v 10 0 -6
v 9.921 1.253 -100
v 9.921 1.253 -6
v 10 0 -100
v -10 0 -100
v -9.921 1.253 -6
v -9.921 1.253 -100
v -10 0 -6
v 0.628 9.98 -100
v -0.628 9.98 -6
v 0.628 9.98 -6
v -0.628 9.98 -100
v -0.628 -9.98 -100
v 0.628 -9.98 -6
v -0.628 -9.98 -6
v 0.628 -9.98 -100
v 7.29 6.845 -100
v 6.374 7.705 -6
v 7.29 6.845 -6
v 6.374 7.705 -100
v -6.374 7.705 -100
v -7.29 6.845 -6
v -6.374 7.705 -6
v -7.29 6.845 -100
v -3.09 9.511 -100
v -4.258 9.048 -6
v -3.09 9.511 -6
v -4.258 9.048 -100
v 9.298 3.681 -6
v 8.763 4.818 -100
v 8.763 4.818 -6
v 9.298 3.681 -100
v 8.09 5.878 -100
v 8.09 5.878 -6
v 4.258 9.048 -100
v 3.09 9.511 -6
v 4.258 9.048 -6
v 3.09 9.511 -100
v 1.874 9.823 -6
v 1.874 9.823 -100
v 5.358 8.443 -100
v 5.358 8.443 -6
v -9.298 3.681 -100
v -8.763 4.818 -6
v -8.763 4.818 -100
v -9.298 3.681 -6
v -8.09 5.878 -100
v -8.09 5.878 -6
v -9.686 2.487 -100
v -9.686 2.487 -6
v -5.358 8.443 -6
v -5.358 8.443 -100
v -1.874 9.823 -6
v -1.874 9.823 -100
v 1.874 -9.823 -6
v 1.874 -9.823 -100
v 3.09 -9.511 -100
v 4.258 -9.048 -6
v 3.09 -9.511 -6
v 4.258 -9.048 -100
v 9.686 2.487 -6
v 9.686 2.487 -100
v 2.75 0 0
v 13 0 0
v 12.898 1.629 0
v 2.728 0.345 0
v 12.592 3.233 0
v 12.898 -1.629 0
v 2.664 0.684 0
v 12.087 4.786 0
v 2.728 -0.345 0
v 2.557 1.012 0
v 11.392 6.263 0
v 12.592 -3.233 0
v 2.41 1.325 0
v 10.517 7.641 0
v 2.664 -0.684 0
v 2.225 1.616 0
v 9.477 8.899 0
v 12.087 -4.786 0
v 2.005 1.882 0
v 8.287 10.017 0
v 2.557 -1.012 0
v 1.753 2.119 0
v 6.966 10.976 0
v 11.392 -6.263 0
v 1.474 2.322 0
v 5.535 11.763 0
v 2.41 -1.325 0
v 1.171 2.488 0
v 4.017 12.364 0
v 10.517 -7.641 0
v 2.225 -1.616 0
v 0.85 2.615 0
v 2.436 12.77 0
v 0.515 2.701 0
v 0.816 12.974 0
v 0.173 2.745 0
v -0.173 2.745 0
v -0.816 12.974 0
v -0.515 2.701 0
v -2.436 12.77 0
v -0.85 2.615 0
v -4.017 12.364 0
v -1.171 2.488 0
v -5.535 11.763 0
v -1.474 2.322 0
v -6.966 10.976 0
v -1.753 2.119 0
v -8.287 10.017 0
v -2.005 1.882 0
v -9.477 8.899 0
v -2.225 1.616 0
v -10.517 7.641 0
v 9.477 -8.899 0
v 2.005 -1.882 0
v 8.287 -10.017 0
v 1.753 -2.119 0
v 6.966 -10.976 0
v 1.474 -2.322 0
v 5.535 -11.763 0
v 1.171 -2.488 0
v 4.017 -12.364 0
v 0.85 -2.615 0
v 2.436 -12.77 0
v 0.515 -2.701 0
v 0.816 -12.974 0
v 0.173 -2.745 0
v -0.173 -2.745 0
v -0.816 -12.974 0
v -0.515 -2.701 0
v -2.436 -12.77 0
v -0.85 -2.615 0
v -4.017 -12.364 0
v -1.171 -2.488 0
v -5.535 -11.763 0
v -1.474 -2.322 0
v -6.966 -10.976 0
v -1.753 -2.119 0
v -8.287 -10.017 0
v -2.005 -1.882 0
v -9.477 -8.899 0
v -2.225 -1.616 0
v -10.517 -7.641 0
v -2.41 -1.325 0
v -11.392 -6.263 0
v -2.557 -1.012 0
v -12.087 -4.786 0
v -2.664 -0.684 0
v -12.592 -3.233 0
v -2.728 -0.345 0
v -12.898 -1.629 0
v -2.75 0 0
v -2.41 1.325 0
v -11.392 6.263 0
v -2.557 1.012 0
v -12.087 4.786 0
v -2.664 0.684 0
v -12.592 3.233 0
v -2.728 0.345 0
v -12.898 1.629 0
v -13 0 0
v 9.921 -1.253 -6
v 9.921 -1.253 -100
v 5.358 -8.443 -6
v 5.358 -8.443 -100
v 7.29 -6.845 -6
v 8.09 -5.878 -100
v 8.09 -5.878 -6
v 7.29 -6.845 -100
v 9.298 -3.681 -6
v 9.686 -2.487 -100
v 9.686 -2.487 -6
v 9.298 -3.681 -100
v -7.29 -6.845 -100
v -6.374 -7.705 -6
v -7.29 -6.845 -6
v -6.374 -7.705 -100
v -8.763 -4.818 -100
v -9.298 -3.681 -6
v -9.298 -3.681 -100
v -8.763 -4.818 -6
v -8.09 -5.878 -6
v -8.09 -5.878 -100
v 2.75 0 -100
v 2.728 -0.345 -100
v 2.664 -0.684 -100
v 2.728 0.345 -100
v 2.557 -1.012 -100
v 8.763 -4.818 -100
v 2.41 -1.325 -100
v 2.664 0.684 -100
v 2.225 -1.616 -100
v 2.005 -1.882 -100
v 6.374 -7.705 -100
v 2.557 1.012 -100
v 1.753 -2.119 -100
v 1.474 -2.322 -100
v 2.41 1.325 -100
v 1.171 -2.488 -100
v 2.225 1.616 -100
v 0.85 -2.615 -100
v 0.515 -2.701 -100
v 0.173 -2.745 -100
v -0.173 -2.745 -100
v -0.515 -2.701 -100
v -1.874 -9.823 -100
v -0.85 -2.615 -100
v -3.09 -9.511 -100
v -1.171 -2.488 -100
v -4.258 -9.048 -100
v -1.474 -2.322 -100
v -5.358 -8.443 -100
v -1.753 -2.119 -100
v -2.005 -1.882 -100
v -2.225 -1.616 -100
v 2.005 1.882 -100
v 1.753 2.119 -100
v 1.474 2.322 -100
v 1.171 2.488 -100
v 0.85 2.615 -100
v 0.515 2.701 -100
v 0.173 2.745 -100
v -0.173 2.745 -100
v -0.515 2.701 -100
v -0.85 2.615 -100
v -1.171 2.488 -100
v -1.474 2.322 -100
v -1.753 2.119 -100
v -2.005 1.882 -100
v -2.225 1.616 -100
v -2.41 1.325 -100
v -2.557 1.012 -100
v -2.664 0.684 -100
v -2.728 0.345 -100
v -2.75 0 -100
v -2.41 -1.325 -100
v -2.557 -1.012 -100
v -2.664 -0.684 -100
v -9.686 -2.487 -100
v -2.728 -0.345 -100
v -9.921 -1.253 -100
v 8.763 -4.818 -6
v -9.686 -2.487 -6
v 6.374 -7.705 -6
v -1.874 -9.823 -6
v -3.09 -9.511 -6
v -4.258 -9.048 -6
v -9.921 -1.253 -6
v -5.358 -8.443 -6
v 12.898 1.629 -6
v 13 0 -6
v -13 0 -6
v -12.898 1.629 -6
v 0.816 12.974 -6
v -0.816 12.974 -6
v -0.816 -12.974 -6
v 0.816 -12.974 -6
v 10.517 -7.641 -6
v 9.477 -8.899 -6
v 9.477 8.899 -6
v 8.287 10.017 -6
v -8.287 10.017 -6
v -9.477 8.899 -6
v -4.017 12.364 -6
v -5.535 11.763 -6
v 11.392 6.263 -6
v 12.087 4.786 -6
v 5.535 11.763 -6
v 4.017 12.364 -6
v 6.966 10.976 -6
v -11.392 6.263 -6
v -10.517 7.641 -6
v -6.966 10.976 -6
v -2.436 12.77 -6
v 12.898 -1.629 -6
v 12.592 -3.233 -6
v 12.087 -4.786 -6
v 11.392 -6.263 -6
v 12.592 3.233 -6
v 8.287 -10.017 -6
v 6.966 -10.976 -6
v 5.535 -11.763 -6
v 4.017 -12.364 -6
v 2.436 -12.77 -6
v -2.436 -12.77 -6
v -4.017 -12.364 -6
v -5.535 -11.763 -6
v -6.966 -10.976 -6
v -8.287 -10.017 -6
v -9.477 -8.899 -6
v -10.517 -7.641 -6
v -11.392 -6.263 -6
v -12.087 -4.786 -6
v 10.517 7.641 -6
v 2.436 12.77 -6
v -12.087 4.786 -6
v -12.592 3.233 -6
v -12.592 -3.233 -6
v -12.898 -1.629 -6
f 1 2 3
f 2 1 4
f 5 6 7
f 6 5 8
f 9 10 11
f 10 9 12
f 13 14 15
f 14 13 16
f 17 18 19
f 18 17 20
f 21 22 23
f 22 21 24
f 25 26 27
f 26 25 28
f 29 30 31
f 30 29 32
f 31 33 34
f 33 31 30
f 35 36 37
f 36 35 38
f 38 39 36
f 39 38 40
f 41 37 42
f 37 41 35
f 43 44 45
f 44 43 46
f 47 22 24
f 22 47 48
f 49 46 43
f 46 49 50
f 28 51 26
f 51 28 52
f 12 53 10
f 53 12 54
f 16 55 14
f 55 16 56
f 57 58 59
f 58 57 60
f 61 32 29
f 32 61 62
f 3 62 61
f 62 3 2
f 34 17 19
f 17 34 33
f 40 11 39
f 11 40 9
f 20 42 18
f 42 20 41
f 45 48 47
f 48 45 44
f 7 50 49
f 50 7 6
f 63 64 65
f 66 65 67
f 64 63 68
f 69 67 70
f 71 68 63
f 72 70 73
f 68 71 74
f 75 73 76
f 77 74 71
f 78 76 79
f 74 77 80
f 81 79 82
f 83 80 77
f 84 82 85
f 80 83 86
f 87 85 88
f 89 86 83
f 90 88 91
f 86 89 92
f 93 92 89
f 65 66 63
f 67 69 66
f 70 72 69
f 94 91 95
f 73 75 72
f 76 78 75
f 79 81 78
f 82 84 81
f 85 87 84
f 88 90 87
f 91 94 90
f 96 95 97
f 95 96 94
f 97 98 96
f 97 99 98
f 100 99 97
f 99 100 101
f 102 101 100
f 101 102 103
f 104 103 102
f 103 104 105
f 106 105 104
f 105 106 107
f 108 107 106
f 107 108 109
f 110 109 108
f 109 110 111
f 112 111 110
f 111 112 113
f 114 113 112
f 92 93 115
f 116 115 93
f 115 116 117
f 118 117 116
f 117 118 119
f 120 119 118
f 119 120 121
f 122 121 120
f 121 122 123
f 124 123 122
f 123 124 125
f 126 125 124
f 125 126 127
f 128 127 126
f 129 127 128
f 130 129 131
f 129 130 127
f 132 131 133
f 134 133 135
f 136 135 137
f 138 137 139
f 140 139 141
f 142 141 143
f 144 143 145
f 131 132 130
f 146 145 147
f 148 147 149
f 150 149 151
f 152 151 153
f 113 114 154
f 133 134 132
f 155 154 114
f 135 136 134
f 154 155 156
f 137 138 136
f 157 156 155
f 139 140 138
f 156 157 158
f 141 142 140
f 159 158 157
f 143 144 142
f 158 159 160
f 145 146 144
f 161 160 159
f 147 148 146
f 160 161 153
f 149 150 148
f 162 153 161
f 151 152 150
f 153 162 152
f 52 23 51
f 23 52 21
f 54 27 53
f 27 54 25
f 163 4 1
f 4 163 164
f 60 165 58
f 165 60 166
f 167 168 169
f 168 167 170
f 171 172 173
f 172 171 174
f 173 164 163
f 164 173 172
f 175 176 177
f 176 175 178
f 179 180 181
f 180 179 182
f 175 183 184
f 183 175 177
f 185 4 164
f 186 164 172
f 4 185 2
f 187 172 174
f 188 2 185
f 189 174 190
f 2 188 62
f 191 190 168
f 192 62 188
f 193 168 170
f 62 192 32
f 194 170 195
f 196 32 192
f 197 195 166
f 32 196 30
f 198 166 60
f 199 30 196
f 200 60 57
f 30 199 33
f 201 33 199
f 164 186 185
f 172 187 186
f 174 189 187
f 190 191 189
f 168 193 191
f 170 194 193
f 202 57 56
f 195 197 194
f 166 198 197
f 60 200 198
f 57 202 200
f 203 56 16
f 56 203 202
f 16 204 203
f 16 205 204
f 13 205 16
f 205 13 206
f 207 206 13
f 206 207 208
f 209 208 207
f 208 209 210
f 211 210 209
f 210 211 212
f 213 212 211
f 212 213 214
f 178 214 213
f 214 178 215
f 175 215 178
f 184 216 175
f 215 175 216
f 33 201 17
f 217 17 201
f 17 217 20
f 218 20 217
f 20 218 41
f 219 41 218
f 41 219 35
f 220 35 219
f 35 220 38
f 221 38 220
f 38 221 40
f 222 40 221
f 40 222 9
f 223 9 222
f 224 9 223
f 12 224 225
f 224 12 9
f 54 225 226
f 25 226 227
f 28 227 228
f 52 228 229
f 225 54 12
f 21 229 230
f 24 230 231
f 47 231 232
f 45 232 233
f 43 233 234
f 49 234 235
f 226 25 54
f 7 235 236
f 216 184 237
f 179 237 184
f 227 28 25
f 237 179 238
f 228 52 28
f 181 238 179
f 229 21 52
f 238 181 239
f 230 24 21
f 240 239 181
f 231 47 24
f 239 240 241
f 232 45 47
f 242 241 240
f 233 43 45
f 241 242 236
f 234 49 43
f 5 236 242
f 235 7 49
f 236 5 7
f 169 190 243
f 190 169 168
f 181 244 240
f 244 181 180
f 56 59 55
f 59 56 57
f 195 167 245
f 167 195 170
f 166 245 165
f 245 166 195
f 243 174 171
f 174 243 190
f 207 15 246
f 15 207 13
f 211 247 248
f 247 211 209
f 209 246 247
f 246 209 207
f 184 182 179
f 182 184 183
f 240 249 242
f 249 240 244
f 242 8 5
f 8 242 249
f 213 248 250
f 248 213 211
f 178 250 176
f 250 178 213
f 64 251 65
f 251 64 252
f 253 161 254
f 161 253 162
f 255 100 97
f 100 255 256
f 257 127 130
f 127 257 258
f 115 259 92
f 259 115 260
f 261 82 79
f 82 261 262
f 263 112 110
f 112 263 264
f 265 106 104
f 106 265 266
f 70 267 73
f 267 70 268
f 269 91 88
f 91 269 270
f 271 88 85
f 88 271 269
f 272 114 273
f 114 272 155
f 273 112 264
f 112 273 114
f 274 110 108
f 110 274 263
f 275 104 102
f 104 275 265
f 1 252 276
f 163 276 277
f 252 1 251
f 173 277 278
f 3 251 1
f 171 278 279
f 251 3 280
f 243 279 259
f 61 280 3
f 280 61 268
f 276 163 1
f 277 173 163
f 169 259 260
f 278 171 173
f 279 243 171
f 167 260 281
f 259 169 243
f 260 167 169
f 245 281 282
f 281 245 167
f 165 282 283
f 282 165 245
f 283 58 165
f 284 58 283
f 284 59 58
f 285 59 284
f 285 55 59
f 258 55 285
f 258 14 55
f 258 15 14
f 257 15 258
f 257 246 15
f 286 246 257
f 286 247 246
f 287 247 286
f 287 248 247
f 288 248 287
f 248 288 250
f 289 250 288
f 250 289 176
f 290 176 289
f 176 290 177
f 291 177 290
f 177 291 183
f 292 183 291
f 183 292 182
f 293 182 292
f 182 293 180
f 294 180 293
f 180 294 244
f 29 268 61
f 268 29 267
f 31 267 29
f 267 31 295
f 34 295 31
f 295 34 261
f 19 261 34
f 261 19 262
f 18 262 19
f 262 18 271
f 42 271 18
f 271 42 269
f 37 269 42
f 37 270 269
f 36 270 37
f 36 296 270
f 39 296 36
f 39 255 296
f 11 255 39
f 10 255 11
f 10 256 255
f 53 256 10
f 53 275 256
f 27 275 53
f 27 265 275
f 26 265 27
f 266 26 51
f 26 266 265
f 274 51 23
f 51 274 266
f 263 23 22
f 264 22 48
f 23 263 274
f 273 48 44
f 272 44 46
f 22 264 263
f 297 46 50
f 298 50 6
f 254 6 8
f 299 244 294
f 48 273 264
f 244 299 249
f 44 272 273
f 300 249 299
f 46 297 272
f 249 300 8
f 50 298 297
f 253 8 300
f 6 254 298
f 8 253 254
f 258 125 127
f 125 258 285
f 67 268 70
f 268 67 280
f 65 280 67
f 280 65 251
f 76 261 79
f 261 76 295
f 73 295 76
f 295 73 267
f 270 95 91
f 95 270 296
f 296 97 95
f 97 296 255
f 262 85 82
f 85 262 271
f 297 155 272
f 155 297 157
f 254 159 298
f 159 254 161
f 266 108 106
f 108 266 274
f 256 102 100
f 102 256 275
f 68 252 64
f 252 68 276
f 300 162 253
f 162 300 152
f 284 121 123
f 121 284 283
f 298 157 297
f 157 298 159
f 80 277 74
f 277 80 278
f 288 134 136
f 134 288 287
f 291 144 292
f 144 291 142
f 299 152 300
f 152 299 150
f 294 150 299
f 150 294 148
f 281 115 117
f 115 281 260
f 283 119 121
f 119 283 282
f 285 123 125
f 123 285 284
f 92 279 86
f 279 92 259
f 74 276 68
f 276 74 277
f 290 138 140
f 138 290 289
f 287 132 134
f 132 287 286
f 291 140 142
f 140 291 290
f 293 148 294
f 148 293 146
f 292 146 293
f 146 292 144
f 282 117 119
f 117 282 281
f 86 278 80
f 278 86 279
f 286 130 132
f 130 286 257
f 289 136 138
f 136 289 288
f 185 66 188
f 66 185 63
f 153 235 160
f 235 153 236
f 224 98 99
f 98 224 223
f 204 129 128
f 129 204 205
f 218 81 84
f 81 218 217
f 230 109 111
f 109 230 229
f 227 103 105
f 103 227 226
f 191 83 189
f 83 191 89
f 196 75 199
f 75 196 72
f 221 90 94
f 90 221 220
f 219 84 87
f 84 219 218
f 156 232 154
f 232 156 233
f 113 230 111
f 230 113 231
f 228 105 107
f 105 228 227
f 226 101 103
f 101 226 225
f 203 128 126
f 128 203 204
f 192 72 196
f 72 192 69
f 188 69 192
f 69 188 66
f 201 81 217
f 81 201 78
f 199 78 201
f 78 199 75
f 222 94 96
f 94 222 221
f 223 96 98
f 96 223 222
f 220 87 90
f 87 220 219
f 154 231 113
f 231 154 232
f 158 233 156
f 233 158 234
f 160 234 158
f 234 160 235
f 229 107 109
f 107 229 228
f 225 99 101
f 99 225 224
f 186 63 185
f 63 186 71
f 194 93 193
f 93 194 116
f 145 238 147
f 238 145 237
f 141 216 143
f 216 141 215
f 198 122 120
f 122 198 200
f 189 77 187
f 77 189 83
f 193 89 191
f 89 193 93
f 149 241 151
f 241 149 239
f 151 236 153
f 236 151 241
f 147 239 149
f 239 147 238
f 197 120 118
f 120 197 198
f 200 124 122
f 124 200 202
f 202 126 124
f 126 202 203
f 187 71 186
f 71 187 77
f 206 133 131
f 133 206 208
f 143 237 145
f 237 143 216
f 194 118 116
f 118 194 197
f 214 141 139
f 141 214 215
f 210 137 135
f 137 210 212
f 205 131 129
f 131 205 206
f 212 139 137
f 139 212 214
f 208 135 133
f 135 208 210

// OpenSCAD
$fn = 50;


difference() {
	union() {
		translate(v = [0, 0, -100.0000000000]) {
			cylinder(h = 100, r = 10.0000000000);
		}
		translate(v = [0, 0, -6.0000000000]) {
			cylinder(h = 6, r = 13.0000000000);
		}
	}
	union() {
		#translate(v = [0, 0, -100]) {
			cylinder(h = 100, r = 2.7500000000);
		}
	}
}
